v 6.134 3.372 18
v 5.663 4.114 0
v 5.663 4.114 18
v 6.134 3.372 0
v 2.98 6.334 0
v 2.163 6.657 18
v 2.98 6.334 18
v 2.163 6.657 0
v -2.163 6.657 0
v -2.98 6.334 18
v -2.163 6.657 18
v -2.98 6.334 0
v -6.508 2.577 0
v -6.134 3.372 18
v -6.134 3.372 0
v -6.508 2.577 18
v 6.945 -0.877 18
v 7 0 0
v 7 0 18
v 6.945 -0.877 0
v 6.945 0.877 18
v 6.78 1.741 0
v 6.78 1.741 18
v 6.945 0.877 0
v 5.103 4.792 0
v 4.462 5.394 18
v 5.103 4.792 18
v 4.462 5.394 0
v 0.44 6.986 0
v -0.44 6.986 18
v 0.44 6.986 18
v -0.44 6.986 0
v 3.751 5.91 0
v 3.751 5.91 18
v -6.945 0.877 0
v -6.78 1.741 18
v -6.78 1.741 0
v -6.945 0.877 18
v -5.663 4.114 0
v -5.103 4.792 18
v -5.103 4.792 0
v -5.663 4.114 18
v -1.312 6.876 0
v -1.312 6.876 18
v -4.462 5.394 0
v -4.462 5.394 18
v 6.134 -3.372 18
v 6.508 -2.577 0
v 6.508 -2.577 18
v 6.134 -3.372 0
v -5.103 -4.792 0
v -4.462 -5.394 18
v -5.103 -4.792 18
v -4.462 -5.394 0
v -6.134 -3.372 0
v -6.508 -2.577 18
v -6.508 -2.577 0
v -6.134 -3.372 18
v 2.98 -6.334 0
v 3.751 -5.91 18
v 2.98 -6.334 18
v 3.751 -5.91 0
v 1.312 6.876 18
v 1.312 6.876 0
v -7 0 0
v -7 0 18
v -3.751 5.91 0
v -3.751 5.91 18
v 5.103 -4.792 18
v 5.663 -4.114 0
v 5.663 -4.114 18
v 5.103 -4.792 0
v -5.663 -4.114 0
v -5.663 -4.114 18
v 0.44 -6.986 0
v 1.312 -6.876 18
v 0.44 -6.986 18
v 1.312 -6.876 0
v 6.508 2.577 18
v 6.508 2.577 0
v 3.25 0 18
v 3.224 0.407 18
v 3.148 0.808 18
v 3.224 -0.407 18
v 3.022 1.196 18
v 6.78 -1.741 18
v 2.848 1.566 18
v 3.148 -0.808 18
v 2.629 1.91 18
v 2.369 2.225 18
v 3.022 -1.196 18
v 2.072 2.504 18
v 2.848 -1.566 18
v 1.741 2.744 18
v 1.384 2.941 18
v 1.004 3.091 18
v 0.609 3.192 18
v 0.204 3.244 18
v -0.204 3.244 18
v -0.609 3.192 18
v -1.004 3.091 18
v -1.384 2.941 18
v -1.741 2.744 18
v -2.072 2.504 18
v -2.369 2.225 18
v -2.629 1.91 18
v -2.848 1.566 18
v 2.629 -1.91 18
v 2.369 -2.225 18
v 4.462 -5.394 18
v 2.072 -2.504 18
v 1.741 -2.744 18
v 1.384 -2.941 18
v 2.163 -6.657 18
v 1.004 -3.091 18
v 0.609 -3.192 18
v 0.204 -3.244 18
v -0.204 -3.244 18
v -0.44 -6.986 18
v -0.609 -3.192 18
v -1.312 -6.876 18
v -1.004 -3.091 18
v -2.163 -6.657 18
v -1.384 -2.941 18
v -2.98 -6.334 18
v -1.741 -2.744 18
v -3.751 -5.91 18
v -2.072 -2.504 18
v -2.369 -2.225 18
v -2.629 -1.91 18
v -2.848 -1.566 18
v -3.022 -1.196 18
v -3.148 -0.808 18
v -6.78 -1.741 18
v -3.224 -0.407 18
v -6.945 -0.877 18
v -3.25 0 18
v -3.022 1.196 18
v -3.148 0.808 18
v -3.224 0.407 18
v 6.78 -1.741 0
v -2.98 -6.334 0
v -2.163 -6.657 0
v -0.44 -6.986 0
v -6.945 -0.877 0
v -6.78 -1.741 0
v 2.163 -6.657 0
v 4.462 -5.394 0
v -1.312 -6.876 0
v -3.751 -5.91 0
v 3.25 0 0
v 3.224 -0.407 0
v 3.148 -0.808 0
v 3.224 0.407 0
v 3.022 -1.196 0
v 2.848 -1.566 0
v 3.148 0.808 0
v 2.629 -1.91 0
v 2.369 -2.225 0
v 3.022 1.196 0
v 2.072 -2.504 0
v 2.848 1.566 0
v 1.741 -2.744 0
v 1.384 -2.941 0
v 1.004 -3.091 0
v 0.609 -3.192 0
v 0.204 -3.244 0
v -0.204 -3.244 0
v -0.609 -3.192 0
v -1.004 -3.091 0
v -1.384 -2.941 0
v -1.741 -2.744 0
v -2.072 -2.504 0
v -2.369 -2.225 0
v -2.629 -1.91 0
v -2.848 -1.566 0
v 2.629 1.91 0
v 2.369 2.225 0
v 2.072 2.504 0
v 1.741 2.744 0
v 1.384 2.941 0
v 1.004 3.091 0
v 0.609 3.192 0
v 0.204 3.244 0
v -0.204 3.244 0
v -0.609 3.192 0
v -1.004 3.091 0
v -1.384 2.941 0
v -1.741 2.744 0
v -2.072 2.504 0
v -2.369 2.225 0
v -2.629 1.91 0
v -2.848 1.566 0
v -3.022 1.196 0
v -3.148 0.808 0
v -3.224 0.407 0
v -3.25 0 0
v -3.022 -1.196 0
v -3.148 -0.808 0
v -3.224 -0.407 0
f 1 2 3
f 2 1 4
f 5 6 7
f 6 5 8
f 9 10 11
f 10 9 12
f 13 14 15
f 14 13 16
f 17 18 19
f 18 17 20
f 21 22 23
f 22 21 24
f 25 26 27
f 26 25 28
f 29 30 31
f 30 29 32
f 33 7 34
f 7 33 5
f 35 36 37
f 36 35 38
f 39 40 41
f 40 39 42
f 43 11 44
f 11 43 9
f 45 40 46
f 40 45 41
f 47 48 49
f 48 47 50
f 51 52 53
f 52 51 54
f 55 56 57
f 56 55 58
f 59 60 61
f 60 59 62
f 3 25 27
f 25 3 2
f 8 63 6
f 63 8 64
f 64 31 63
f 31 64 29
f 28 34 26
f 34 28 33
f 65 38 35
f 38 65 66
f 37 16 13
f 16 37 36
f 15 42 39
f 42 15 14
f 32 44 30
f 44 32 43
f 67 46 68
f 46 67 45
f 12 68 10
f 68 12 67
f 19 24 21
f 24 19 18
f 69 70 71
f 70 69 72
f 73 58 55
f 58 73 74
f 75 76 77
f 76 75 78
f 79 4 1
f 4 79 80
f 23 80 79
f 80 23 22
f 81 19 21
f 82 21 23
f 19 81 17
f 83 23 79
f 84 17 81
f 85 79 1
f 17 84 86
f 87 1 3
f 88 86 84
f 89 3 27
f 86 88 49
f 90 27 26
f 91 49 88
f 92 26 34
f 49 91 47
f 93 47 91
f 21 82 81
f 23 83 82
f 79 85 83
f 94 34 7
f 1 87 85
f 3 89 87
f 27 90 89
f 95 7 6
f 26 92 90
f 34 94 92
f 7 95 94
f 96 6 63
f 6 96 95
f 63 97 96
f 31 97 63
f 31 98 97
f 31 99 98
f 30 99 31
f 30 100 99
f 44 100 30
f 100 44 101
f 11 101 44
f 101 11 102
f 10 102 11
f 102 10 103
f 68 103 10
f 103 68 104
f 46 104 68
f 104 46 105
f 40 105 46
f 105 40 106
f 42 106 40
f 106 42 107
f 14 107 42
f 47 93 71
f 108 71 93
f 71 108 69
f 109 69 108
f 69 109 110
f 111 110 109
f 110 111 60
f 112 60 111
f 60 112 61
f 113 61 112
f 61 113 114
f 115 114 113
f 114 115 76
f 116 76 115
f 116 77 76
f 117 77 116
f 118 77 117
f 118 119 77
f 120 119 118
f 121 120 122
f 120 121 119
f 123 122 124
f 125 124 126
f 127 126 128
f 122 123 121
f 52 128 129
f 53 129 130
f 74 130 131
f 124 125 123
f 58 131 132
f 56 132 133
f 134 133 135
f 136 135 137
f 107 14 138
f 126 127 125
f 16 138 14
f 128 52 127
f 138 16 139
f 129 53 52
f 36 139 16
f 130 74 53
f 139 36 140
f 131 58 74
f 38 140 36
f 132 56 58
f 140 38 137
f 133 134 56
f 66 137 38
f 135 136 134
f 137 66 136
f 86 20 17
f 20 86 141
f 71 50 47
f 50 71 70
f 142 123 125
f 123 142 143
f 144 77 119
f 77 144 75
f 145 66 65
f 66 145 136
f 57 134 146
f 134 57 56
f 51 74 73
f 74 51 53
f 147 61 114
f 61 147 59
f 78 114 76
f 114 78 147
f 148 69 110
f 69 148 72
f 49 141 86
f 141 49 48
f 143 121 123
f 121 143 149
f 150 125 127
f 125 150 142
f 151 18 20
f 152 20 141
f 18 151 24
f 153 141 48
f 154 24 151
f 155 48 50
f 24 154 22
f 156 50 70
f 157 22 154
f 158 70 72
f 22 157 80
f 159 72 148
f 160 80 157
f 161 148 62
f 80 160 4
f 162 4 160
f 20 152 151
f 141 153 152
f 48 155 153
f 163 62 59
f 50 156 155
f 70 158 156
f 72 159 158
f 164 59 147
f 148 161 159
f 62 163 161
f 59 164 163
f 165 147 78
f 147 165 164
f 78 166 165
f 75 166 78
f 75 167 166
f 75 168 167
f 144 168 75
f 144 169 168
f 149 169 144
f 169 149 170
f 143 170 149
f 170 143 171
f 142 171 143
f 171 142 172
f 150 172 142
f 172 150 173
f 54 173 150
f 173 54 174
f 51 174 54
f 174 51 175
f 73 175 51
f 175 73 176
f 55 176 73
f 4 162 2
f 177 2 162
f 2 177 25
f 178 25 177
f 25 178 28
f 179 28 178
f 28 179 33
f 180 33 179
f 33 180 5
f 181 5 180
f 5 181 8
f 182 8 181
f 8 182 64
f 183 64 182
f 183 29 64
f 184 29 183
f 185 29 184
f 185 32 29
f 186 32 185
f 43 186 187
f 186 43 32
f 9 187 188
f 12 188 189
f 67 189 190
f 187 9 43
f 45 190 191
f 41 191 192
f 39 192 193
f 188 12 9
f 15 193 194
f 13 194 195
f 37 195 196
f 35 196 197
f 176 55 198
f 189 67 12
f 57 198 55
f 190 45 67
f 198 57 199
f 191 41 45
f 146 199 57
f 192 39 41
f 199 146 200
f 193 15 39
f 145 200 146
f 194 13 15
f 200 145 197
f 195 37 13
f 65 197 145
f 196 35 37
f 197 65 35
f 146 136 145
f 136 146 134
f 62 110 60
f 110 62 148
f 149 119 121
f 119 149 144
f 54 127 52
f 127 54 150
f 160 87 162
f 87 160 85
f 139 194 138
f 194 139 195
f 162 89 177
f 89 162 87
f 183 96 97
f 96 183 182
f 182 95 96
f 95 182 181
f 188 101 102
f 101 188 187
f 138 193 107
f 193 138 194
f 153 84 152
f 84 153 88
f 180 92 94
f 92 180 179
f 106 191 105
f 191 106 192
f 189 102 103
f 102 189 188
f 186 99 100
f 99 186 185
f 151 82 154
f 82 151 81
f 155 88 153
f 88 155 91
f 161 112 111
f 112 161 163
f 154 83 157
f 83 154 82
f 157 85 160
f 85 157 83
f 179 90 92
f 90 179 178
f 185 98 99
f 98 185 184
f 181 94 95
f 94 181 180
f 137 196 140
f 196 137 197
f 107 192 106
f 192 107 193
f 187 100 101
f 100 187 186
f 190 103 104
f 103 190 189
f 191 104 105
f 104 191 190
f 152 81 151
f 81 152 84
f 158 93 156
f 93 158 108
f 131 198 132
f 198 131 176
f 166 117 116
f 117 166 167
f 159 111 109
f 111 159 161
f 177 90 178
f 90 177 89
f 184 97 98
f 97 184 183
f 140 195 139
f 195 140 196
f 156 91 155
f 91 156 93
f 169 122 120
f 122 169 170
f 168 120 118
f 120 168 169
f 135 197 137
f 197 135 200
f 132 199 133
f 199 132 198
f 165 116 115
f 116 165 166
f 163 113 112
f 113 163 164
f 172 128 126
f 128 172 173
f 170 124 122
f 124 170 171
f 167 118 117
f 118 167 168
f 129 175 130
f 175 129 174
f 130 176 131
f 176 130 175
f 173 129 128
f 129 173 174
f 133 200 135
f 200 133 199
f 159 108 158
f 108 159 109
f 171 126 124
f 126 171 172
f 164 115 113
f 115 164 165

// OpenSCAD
$fn = 50;


difference() {
	union() {
		cylinder(h = 18, r = 7.0000000000);
	}
	union() {
		translate(v = [0.0000000000, 0.0000000000, -100.0000000000]) {
			cylinder(h = 200, r = 3.2500000000);
		}
	}
}
